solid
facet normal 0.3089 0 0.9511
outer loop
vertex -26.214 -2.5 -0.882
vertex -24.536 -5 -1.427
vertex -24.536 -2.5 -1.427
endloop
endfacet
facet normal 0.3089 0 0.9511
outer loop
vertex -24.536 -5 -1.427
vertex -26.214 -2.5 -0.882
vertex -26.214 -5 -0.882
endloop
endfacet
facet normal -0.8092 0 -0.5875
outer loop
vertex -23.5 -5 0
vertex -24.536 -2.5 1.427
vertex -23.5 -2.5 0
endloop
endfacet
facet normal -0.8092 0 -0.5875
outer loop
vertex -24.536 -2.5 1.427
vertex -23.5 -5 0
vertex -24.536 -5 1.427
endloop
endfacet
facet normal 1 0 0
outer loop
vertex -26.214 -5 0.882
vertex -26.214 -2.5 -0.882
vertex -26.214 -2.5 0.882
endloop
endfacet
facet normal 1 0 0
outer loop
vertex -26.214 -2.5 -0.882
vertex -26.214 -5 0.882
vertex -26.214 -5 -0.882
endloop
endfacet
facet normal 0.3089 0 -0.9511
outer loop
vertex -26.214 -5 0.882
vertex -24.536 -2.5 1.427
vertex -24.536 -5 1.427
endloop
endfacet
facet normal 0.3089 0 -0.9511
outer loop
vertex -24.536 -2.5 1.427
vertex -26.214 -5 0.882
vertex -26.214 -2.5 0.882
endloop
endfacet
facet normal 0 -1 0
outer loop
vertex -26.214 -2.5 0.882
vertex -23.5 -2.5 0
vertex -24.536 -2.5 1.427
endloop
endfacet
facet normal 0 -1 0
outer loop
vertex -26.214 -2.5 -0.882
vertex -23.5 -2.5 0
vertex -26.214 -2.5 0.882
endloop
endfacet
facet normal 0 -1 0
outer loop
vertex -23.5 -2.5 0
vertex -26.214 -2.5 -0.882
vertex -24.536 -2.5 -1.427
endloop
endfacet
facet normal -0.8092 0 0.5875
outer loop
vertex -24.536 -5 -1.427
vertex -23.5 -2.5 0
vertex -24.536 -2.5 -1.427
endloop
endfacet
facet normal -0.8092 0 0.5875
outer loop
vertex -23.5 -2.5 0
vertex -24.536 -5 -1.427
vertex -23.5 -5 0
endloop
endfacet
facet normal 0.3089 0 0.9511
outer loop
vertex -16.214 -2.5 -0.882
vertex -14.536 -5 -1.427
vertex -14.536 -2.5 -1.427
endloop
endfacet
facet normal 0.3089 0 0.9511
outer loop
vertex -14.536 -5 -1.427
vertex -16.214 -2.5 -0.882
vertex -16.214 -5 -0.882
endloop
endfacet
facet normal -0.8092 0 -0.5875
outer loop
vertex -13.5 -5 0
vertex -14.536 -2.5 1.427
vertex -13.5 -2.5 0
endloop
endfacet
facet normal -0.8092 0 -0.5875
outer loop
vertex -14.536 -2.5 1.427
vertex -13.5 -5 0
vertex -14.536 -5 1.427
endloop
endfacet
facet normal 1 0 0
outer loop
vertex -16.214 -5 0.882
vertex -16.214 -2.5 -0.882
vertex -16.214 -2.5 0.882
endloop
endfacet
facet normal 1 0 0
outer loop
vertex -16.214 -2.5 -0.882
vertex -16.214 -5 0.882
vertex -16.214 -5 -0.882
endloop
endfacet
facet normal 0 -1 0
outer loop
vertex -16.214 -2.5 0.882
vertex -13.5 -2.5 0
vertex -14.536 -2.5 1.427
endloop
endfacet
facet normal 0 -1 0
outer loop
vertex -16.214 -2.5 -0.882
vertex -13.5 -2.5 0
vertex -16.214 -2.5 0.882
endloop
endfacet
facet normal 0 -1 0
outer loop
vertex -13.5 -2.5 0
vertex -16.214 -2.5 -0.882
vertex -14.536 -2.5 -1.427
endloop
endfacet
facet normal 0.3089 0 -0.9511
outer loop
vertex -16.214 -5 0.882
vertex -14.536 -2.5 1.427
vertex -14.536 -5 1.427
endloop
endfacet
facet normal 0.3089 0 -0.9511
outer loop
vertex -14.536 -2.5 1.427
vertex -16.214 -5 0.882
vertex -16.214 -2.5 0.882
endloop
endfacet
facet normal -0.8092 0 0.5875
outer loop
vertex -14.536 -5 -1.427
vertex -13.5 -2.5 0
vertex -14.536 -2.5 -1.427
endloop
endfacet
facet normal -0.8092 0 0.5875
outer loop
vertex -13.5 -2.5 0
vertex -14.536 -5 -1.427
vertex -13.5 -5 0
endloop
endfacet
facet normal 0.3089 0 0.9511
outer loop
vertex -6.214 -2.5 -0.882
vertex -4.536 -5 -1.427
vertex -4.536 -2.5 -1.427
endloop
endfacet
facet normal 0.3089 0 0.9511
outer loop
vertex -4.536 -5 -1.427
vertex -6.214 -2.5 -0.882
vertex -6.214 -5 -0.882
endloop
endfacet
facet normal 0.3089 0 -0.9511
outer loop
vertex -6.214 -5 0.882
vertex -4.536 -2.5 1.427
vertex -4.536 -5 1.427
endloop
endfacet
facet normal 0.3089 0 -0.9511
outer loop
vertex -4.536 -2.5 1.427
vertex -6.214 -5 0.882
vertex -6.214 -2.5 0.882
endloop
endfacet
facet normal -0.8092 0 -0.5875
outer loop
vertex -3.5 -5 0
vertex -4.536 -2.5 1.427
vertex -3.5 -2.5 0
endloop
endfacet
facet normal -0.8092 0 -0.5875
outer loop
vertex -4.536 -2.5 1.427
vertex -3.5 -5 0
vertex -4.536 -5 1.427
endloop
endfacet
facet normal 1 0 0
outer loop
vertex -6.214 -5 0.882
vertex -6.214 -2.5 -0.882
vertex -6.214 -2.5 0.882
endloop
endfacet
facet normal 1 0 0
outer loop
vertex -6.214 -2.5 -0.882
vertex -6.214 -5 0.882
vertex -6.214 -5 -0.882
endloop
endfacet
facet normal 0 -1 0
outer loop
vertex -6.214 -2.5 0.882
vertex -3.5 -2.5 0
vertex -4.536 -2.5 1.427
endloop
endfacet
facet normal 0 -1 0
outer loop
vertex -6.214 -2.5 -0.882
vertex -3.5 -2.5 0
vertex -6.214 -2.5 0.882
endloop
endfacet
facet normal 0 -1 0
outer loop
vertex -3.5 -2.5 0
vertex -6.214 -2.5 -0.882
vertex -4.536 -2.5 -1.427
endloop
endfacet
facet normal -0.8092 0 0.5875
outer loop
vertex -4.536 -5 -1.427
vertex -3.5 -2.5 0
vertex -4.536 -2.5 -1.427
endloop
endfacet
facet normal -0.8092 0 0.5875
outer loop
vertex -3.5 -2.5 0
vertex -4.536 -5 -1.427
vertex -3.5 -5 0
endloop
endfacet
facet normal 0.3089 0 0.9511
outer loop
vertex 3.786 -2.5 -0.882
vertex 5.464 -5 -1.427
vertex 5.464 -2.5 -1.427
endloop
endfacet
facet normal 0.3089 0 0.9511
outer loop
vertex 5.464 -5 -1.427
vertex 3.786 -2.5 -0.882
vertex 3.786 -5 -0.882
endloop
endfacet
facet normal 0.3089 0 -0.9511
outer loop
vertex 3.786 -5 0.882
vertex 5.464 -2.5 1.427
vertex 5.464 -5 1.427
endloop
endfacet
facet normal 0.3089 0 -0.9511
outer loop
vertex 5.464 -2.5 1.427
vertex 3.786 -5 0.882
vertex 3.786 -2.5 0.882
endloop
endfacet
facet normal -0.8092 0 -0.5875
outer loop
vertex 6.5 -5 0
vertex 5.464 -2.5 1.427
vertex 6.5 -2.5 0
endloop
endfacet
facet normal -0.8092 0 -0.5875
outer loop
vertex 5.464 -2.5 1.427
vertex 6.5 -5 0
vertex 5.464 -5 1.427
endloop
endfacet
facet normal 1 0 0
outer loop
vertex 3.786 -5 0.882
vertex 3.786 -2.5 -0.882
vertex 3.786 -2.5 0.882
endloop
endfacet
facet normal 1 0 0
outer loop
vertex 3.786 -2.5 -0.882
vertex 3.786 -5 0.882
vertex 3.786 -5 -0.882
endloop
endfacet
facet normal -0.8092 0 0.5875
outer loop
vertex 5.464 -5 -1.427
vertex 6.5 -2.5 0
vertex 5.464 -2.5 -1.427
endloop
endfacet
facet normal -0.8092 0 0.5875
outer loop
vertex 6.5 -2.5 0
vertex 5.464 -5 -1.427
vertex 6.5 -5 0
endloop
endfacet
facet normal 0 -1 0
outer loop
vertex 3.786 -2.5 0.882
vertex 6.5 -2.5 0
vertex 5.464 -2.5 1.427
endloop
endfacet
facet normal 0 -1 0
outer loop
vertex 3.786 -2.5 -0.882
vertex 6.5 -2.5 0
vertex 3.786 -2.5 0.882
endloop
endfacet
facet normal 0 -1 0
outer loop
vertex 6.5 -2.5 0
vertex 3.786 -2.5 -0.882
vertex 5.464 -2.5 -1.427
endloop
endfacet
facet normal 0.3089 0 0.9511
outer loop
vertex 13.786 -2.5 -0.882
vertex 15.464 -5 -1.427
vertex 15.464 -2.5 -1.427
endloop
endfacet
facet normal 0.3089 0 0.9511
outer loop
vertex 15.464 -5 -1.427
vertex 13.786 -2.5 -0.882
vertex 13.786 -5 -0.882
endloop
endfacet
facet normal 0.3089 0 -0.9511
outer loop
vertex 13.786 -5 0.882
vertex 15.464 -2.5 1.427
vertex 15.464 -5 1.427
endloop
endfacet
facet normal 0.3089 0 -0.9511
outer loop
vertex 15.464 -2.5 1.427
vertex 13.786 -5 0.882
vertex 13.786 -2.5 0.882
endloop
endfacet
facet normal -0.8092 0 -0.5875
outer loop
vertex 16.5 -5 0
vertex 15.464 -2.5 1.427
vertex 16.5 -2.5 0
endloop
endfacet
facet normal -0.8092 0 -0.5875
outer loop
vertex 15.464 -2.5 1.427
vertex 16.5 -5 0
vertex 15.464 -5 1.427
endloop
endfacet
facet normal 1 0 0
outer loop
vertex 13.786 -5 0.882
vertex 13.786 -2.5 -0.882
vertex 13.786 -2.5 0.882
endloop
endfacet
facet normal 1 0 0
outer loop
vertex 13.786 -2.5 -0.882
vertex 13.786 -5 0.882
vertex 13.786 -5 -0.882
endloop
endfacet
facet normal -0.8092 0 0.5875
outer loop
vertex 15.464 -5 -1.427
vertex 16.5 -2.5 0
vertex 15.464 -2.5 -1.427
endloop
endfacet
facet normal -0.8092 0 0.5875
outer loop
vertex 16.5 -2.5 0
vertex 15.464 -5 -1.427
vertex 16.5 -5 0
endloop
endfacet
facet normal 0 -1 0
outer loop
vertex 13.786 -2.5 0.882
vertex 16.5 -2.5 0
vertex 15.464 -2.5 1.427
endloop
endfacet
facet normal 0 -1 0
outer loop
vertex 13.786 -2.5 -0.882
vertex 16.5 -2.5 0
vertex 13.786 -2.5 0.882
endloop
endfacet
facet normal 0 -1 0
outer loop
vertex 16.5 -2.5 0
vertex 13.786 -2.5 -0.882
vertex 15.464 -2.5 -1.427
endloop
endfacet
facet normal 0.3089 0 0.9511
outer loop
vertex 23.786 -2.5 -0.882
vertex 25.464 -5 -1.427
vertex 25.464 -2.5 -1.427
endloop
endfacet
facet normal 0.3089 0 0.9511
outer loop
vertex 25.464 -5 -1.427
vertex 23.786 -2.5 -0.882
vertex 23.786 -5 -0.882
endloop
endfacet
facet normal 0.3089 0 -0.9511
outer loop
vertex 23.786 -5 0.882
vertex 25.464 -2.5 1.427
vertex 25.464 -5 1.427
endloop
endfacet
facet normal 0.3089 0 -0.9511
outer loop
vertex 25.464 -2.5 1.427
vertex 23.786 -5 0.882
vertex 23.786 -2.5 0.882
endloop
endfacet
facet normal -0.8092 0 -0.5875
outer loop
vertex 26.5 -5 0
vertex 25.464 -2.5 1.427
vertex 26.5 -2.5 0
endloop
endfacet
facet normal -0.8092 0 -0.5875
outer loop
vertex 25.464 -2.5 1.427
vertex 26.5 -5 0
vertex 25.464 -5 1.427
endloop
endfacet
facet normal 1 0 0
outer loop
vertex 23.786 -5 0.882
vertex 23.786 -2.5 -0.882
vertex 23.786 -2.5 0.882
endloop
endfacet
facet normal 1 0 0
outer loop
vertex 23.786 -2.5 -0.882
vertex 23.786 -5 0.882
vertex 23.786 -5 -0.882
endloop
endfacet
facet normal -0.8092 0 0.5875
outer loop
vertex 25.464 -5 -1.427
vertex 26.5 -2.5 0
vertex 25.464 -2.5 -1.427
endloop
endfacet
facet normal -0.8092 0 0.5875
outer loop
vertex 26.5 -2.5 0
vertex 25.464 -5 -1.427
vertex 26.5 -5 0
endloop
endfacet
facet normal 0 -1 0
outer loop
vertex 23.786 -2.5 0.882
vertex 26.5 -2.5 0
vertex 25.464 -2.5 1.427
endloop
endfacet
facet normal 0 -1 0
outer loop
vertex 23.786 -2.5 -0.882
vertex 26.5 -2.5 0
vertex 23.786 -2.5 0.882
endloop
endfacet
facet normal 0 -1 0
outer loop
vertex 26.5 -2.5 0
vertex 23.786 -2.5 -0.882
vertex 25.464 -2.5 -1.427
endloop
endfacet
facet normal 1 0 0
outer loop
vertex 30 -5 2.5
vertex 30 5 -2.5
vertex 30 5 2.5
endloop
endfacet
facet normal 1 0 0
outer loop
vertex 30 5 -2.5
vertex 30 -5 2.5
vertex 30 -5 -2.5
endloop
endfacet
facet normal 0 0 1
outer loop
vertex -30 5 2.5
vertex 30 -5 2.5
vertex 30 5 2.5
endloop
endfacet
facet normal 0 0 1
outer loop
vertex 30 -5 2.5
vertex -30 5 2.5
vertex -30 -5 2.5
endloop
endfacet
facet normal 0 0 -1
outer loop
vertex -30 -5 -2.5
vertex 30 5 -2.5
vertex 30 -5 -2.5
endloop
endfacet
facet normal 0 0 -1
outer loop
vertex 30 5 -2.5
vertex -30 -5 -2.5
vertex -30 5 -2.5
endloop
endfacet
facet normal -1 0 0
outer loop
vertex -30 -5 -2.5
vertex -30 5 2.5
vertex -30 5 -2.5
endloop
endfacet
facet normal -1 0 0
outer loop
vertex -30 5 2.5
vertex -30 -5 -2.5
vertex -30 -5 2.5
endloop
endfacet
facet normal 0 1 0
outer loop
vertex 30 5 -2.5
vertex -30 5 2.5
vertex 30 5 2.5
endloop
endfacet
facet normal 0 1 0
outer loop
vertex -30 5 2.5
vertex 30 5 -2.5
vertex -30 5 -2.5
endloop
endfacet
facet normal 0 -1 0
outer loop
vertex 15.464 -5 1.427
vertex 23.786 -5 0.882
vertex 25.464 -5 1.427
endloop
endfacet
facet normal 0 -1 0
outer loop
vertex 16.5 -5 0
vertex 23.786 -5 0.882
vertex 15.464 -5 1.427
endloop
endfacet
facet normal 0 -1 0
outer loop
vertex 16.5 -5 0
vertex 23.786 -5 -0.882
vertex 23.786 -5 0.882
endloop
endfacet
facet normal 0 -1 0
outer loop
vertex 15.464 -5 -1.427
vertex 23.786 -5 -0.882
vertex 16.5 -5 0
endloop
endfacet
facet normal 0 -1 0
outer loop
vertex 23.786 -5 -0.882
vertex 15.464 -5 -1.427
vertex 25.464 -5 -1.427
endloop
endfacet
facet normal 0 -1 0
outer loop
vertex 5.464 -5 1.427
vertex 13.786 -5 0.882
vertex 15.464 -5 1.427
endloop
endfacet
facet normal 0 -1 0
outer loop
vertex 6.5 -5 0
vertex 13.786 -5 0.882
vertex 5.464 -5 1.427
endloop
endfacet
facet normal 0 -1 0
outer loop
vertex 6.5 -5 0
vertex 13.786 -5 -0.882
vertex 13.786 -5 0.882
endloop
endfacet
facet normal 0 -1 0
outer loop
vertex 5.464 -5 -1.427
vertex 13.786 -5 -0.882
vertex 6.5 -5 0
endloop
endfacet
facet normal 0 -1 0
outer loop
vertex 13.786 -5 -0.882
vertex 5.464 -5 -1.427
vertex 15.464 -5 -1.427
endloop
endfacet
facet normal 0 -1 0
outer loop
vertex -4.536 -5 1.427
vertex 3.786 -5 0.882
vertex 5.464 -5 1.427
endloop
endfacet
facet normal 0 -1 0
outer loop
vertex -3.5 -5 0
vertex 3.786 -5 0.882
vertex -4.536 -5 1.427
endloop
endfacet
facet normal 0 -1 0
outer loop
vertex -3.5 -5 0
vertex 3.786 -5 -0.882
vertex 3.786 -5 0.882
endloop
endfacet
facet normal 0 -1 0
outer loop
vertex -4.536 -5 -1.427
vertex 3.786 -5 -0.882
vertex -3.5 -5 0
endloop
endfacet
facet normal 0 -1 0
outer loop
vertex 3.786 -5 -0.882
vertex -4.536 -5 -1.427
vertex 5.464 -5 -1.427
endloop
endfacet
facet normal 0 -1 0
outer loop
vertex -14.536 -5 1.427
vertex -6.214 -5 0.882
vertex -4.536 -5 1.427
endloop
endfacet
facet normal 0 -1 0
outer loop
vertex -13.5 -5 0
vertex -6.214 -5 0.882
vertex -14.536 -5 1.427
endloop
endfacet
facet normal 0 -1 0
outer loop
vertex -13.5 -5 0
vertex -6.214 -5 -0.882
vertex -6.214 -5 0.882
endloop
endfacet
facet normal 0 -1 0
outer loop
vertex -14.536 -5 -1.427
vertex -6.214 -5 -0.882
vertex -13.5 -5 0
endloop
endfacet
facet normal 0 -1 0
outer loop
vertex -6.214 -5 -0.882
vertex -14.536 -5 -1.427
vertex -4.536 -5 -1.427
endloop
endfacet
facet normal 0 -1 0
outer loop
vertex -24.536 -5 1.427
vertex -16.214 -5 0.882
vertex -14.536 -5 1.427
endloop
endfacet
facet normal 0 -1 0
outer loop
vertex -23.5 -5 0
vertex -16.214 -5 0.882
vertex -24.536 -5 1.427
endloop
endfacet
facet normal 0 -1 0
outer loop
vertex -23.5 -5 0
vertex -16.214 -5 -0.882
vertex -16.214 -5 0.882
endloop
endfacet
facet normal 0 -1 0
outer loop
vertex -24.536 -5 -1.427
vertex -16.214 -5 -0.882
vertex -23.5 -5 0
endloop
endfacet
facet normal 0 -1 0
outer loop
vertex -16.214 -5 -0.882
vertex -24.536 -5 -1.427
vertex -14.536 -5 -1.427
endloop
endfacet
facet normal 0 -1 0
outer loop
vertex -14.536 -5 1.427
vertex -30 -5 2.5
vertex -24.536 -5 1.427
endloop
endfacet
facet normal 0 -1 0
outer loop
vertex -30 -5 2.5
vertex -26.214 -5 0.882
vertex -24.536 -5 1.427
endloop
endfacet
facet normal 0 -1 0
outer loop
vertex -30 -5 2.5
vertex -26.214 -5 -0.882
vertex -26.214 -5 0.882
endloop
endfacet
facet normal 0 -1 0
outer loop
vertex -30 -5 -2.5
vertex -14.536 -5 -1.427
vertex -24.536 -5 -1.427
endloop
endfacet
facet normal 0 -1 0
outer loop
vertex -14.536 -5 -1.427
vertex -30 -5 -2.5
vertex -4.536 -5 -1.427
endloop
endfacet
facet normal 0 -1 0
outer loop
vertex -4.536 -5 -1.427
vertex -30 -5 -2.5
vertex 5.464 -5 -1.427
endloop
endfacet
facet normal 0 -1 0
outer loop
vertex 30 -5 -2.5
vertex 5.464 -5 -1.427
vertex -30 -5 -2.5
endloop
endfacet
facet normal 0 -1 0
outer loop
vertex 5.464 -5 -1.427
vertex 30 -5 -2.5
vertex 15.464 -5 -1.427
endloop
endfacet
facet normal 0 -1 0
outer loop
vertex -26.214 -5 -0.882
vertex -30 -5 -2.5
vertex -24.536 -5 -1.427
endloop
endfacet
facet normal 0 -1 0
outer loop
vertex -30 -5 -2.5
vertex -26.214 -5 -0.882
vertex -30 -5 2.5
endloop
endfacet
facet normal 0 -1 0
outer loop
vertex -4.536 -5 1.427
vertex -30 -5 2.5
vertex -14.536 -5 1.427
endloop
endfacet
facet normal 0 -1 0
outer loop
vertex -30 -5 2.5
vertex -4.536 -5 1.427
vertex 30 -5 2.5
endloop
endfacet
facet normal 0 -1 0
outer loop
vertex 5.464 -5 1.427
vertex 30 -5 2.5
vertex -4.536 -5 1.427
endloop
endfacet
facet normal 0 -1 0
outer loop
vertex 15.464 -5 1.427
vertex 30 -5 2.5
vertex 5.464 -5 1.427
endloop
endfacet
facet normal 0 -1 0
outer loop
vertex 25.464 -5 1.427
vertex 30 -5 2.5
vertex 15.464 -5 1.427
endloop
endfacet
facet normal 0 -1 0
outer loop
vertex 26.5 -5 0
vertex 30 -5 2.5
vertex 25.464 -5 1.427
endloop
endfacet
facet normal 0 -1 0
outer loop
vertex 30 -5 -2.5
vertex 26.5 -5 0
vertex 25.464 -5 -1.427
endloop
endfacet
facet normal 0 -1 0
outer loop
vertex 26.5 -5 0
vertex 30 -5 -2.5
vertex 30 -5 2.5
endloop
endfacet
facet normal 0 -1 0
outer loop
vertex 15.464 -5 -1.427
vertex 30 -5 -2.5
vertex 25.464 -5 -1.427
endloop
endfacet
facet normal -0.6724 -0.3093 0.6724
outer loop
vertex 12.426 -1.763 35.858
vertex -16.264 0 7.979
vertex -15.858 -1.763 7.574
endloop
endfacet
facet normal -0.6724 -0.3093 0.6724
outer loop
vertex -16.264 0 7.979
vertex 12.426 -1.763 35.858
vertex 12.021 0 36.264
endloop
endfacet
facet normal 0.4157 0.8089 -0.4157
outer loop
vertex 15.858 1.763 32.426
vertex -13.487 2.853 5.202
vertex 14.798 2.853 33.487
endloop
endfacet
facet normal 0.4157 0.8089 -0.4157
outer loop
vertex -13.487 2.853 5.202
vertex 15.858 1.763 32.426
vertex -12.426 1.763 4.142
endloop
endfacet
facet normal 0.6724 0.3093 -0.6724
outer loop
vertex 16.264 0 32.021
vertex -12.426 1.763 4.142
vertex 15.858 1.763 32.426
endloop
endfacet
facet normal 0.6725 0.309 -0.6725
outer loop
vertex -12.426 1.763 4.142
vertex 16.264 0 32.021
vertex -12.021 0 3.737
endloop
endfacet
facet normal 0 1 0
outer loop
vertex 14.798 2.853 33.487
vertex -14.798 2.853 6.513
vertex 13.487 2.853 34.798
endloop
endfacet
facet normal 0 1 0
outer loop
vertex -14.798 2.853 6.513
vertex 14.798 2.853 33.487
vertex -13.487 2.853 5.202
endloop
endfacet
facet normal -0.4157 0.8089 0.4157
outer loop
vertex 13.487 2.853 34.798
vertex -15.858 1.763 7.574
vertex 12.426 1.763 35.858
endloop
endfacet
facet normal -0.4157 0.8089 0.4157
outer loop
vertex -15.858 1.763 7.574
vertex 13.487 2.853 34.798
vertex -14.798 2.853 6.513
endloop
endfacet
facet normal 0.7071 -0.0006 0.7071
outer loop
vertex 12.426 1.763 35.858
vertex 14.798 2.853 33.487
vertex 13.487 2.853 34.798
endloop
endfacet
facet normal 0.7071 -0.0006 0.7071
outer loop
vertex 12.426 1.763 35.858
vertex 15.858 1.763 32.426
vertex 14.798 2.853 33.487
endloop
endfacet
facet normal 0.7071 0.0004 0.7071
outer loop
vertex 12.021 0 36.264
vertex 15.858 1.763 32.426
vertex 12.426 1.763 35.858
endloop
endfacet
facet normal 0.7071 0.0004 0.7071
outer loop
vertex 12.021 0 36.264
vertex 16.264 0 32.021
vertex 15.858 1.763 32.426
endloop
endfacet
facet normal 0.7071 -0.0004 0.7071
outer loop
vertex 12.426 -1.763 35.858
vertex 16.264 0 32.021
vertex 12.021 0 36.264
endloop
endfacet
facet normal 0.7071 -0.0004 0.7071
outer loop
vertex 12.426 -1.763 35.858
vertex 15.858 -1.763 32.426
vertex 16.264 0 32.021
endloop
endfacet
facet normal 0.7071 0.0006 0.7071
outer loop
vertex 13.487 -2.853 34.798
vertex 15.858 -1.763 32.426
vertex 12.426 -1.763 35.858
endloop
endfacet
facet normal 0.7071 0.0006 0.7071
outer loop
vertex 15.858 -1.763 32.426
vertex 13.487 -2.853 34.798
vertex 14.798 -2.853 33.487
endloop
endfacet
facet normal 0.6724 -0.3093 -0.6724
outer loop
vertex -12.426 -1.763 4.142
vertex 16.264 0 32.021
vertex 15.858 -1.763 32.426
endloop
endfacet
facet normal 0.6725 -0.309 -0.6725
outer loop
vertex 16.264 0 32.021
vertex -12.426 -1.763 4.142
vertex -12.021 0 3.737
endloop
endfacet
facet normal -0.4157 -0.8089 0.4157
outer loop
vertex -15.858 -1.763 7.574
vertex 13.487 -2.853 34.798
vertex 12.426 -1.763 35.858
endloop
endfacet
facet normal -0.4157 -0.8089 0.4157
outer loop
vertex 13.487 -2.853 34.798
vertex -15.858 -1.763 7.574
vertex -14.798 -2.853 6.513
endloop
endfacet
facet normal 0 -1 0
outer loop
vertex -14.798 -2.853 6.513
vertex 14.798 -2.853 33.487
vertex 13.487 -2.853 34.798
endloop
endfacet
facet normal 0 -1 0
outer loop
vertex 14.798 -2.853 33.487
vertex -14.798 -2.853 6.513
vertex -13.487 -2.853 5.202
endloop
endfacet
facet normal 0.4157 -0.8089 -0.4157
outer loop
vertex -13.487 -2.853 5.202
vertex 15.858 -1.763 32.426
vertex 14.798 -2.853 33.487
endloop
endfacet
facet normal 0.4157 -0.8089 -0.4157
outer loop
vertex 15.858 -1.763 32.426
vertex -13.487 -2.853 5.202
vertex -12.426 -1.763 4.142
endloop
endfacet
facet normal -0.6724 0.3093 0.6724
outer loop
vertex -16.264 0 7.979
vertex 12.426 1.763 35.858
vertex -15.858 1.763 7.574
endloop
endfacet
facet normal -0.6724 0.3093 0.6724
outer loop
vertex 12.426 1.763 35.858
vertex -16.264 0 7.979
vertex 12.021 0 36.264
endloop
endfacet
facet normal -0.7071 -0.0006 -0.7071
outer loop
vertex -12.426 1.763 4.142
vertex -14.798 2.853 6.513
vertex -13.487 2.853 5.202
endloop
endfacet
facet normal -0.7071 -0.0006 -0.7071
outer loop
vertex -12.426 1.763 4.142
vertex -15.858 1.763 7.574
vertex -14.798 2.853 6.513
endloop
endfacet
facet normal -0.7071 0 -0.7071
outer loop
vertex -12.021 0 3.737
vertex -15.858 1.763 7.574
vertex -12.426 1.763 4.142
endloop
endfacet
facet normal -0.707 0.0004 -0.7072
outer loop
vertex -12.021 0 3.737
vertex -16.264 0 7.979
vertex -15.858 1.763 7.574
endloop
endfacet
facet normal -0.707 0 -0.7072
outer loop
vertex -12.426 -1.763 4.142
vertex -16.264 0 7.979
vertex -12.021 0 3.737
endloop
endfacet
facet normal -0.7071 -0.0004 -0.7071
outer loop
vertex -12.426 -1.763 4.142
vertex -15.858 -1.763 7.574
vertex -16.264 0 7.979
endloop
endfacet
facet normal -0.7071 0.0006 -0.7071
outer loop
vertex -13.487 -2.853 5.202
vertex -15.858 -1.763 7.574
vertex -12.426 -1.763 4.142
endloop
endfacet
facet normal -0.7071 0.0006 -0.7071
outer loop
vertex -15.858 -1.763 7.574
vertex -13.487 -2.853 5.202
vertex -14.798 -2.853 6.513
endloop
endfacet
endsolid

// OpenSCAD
// Base Plate
module base_plate() {
    difference() {
        cube([60, 10, 5], center = true); // Base plate dimensions: 60x10x5
        for (x = [-25, -15, -5, 5, 15, 25]) { // Holes evenly spaced along one edge
            translate([x, -5, 0]) 
                rotate([90, 0, 0]) 
                    cylinder(r = 1.5, h = 5, center = true); // Hole radius: 1.5
        }
    }
}

// Cylindrical Rod
module cylindrical_rod() {
    translate([0, 0, 20]) // Position the rod above the base plate
        rotate([0, 45, 0]) // Angle the rod upward
            cylinder(r = 3, h = 40, center = true); // Rod dimensions: radius 3, height 40
}

// Triangular Support Brace
module triangular_support_brace() {
    polyhedron(
        points = [
            [0, 0, 0], // Bottom-left corner
            [10, 0, 0], // Bottom-right corner
            [0, 0, 20], // Top corner
            [10, 0, 20] // Top-right corner (for thickness)
        ],
        faces = [
            [0, 1, 2], // Front face
            [1, 3, 2], // Back face
            [0, 1, 3, 2] // Bottom face
        ]
    );
}

// Assembly
module assembly() {
    base_plate();
    translate([-10, 0, 0]) // Position the first brace
        triangular_support_brace();
    translate([10, 0, 0]) // Position the second brace
        triangular_support_brace();
    cylindrical_rod();
}

// Render the assembly
assembly();
